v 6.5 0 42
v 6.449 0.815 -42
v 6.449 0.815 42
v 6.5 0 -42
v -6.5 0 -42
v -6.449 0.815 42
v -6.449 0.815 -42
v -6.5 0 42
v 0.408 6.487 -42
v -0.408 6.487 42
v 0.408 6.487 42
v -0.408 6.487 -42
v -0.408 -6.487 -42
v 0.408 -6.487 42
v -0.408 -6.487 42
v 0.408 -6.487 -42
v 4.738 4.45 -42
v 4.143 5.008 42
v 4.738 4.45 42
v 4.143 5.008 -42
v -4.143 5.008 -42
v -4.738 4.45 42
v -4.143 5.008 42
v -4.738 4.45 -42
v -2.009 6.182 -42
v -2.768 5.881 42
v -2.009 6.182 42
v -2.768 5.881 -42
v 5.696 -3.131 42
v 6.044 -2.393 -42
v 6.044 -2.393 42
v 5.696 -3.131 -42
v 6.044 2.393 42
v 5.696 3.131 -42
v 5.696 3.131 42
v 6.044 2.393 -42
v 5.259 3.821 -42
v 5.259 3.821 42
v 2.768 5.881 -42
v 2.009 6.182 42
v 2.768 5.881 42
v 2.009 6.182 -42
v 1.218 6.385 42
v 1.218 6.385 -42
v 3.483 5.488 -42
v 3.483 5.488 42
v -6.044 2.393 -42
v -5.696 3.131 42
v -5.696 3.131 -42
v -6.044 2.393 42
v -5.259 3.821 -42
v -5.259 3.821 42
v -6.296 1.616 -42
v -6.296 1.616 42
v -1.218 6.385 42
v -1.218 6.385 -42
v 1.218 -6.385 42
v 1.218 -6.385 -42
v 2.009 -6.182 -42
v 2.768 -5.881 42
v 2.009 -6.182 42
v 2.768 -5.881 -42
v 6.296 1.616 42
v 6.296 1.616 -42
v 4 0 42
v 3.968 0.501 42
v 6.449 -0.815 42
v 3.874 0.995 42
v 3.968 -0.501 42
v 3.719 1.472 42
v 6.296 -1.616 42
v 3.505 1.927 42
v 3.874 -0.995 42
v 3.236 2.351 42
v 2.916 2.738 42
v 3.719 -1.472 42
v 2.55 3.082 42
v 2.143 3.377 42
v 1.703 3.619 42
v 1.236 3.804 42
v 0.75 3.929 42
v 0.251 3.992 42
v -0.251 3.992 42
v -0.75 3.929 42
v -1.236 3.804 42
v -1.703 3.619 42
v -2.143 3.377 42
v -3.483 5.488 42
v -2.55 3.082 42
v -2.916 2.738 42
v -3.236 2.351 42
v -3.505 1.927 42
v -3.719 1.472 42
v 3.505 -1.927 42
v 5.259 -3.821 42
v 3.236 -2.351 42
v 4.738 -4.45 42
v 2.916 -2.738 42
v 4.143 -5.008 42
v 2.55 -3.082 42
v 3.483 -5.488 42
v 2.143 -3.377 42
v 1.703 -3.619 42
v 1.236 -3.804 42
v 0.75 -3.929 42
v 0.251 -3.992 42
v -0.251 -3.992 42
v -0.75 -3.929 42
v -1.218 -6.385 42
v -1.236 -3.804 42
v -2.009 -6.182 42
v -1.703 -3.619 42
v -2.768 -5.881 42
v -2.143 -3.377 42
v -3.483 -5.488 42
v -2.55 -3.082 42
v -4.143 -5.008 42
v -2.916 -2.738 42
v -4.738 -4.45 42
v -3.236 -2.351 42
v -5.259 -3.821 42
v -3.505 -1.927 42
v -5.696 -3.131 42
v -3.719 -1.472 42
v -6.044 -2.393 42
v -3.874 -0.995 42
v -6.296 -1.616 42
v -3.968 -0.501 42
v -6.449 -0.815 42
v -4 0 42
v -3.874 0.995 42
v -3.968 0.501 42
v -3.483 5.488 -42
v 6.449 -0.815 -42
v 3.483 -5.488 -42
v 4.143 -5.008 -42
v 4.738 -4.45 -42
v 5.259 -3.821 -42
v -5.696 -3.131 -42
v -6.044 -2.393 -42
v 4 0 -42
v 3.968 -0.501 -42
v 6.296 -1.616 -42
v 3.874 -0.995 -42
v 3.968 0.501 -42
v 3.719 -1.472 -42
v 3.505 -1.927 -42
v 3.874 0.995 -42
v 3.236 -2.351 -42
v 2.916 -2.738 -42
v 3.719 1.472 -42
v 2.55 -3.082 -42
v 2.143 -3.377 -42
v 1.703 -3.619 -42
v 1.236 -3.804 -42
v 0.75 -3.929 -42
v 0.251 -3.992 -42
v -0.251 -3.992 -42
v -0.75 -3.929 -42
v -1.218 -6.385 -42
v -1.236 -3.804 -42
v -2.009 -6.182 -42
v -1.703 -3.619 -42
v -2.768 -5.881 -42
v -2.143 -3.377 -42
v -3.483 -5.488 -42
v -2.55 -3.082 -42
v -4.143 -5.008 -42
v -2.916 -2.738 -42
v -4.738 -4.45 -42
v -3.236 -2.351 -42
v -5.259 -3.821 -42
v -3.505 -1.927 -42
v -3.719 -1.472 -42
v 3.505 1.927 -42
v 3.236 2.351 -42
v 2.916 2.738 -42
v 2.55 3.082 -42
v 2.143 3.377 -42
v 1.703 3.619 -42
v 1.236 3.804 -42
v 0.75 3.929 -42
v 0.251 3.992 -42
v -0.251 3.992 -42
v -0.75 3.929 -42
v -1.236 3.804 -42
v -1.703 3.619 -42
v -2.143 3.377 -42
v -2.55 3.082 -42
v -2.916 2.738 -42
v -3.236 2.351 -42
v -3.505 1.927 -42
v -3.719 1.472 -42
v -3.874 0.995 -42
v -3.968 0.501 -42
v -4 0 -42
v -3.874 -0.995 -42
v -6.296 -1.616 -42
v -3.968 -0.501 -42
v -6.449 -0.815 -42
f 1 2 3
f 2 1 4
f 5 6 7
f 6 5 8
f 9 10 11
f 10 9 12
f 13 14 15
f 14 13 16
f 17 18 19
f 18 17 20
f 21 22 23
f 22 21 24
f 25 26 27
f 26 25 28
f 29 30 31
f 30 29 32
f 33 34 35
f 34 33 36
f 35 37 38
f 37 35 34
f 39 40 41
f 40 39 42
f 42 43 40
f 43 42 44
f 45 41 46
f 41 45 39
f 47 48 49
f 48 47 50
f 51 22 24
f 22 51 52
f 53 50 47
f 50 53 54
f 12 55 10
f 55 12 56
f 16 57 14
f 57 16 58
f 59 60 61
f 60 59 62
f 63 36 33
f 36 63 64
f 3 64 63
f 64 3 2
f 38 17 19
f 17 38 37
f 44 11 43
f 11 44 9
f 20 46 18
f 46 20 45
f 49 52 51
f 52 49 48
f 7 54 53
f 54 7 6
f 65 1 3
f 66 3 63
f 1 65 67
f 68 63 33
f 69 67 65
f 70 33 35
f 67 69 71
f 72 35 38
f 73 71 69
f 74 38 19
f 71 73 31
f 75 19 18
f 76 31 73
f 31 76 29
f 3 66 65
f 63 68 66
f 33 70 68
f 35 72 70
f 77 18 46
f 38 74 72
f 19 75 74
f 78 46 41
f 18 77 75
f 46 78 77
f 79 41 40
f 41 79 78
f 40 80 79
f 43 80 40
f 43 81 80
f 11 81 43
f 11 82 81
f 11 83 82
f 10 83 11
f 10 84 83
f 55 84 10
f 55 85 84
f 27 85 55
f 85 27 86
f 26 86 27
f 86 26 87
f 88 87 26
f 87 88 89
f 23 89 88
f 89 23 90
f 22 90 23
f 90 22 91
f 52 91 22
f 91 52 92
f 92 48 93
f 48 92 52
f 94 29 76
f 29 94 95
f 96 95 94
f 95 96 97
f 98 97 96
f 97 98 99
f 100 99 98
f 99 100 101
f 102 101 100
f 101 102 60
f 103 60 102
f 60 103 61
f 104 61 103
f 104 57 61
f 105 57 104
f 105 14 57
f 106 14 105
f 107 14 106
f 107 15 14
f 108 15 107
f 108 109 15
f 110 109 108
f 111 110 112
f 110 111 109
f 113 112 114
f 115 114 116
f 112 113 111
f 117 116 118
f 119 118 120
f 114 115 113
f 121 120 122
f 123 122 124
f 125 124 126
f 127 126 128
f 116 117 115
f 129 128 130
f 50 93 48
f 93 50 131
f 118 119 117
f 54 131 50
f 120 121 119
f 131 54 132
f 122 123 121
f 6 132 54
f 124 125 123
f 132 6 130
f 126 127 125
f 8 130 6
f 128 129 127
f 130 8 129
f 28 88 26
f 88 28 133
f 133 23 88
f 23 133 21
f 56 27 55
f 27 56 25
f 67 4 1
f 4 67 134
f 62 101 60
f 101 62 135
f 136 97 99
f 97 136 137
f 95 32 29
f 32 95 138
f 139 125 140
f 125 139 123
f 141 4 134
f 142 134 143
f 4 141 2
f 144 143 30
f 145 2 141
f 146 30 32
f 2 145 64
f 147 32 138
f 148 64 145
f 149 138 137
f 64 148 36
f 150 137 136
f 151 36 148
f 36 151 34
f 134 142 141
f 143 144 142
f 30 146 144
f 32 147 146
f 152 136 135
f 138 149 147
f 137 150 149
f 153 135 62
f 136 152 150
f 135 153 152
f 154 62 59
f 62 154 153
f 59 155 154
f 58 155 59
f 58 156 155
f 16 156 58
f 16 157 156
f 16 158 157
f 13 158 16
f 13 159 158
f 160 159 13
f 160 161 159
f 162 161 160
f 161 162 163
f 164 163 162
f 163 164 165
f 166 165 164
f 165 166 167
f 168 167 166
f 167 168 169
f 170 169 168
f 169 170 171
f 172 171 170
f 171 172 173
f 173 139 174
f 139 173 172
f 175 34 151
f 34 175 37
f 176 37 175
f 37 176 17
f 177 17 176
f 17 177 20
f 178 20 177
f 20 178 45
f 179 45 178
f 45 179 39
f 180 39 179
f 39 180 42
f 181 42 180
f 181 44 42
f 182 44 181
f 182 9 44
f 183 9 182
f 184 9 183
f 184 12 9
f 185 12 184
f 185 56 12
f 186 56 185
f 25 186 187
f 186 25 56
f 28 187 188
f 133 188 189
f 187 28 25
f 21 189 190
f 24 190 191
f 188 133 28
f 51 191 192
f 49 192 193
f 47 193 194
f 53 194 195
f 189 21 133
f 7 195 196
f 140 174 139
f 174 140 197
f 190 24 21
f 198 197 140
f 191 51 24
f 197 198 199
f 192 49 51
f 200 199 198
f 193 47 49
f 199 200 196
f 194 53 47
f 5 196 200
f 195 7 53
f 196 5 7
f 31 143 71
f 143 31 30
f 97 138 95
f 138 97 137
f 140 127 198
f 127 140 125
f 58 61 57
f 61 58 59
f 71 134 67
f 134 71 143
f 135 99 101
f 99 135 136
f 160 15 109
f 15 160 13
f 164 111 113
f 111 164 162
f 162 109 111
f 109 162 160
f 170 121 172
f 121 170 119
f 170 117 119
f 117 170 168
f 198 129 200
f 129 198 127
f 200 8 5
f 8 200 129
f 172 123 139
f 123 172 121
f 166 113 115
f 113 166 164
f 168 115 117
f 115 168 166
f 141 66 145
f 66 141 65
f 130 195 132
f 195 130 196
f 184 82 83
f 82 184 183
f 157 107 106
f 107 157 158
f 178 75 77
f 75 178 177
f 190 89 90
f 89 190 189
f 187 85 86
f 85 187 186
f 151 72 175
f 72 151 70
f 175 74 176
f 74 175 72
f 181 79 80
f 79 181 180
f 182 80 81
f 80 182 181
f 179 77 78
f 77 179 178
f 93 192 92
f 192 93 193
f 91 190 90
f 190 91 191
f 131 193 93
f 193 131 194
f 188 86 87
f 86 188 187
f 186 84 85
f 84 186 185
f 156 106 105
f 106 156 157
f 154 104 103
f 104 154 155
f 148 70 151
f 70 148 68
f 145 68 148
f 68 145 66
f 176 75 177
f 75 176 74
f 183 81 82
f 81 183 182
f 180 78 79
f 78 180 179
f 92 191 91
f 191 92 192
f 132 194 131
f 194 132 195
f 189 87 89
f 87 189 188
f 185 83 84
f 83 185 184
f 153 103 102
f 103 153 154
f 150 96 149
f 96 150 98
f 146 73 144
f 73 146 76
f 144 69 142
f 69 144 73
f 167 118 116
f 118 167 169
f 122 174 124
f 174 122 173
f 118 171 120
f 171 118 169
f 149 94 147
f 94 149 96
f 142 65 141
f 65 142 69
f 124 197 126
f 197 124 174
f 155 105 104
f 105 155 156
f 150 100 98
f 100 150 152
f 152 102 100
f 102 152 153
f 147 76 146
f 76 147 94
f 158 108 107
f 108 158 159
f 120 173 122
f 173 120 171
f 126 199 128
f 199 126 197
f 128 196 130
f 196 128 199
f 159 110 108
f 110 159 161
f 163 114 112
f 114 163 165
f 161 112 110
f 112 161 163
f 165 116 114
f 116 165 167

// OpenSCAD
$fn = 50;


difference() {
	union() {
		translate(v = [0, 0, -42.0000000000]) {
			cylinder(h = 84, r = 6.5000000000);
		}
	}
	union() {
		translate(v = [0, 0, -100.0000000000]) {
			cylinder(h = 200, r = 4);
		}
	}
}
